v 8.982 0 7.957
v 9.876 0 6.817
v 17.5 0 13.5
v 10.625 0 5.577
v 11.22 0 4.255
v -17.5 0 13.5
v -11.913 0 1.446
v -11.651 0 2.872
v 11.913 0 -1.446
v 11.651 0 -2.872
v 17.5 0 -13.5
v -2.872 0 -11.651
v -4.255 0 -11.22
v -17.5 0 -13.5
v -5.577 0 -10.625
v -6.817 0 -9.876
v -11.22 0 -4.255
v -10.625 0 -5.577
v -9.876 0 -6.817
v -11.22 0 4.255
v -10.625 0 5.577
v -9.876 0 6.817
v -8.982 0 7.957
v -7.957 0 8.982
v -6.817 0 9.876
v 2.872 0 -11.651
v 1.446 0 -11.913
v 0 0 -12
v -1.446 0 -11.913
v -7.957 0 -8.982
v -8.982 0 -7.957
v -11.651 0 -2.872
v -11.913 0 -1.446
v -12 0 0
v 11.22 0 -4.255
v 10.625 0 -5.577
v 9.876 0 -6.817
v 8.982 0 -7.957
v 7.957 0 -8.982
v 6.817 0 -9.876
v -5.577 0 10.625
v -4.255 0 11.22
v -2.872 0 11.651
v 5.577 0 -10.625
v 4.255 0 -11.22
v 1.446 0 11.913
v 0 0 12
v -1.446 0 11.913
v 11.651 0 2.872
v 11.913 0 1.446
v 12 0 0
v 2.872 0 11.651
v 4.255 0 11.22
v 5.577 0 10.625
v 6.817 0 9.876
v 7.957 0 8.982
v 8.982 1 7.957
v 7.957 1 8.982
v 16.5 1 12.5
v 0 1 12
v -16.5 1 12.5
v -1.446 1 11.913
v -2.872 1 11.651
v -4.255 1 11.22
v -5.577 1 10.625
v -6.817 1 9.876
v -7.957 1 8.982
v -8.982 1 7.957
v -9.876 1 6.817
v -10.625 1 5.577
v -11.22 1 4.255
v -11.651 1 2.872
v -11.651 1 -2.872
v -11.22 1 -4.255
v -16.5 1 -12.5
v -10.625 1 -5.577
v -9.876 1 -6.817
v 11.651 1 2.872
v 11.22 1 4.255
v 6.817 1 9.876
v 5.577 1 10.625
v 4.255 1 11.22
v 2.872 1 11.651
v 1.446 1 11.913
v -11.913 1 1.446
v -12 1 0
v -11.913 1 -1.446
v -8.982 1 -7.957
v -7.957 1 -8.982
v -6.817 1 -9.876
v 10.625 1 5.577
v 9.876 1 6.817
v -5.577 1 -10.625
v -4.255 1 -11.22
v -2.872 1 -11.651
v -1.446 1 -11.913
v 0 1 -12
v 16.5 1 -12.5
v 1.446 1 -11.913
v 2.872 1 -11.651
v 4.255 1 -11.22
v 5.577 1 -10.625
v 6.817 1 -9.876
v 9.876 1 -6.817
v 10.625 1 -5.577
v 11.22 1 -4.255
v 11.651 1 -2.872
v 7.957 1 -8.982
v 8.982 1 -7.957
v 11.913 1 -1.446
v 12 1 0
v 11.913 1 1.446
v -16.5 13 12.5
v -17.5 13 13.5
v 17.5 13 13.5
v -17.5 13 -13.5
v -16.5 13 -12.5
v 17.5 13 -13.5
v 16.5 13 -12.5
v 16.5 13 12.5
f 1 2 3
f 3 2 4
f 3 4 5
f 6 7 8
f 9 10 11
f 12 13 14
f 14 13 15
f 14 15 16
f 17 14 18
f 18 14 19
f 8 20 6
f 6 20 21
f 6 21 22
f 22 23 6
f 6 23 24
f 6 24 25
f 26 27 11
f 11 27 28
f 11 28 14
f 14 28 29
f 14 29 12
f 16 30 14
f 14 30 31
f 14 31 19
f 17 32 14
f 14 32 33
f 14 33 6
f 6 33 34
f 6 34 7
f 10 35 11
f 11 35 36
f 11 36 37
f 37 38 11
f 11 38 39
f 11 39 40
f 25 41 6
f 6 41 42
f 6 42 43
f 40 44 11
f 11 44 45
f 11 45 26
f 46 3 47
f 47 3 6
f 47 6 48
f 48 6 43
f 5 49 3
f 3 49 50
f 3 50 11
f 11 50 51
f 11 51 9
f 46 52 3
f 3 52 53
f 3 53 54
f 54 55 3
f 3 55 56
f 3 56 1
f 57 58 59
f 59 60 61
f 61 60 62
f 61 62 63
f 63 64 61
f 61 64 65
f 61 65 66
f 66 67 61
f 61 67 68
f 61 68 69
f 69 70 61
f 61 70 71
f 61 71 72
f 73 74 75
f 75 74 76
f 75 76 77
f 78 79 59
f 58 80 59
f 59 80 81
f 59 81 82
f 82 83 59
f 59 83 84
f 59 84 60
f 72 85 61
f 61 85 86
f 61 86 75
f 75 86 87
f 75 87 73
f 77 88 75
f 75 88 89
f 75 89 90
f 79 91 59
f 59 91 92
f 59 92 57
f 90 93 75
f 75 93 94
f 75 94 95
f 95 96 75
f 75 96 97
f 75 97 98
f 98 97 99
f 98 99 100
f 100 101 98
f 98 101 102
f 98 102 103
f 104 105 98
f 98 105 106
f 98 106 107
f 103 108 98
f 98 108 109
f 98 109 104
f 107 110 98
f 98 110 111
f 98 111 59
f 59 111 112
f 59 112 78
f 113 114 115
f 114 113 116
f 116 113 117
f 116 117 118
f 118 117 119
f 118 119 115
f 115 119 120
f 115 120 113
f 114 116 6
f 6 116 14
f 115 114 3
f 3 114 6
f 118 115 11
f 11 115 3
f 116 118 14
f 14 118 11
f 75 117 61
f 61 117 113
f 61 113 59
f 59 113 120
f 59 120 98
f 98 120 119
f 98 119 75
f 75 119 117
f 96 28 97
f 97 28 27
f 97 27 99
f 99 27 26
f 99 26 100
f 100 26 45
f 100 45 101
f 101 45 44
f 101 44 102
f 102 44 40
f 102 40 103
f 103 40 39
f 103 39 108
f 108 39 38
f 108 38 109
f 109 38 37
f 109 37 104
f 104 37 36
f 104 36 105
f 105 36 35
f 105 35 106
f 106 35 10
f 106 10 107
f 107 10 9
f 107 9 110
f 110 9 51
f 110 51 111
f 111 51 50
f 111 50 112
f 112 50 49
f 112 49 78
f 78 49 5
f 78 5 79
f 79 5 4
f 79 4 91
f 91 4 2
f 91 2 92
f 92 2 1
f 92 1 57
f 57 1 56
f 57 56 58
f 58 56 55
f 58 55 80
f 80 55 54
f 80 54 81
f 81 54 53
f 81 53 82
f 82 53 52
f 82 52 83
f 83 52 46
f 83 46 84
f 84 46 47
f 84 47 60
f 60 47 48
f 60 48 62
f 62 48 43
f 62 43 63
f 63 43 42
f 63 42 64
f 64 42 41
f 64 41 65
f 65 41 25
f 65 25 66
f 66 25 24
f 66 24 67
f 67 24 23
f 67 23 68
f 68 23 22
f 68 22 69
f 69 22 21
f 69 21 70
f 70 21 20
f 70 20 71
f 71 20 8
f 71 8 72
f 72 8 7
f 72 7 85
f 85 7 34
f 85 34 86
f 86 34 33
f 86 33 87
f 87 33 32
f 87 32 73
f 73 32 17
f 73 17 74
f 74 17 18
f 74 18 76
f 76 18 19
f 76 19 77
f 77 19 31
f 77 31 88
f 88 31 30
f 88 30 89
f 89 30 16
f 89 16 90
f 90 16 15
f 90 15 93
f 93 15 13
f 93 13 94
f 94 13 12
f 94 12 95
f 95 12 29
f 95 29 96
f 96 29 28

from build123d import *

# Parameters (mm, degrees)
SKETCH_1_W          = 35
SKETCH_1_H          = 27
EXTRUDE_1_DEPTH     = 13
CUT_EXTRUDE_START   = 1
SKETCH_2_W          = 33
SKETCH_2_H          = 25
CUT_EXTRUDE_1_DEPTH = 15
SKETCH_3_R          = 12
CUT_EXTRUDE_2_DEPTH = 26.64176281


with BuildPart() as part:
    # 스케치1 → 보스-돌출1 (new body)
    with BuildSketch(Plane(origin=(0, 0, 0), x_dir=(1, 0, 0), z_dir=(0, 1, 0))):
        Rectangle(SKETCH_1_W, SKETCH_1_H)
    extrude(amount=EXTRUDE_1_DEPTH)

    # 스케치2 → 컷-돌출1 (cut)
    with BuildSketch(Plane(origin=(0, 0, 0), x_dir=(1, 0, 0), z_dir=(0, 1, 0)).offset(CUT_EXTRUDE_START)):
        Rectangle(SKETCH_2_W, SKETCH_2_H)
    extrude(amount=CUT_EXTRUDE_1_DEPTH, mode=Mode.SUBTRACT)

    # 스케치3 → 컷-돌출2 (cut, through all)
    with BuildSketch(Plane(origin=(0, 0, 0), x_dir=(1, 0, 0), z_dir=(0, 1, 0))):
        with Locations(Location((0, 0, 0), (0, 0, 90))):
            Circle(SKETCH_3_R)
    extrude(amount=CUT_EXTRUDE_2_DEPTH, mode=Mode.SUBTRACT)


solid = part.part
